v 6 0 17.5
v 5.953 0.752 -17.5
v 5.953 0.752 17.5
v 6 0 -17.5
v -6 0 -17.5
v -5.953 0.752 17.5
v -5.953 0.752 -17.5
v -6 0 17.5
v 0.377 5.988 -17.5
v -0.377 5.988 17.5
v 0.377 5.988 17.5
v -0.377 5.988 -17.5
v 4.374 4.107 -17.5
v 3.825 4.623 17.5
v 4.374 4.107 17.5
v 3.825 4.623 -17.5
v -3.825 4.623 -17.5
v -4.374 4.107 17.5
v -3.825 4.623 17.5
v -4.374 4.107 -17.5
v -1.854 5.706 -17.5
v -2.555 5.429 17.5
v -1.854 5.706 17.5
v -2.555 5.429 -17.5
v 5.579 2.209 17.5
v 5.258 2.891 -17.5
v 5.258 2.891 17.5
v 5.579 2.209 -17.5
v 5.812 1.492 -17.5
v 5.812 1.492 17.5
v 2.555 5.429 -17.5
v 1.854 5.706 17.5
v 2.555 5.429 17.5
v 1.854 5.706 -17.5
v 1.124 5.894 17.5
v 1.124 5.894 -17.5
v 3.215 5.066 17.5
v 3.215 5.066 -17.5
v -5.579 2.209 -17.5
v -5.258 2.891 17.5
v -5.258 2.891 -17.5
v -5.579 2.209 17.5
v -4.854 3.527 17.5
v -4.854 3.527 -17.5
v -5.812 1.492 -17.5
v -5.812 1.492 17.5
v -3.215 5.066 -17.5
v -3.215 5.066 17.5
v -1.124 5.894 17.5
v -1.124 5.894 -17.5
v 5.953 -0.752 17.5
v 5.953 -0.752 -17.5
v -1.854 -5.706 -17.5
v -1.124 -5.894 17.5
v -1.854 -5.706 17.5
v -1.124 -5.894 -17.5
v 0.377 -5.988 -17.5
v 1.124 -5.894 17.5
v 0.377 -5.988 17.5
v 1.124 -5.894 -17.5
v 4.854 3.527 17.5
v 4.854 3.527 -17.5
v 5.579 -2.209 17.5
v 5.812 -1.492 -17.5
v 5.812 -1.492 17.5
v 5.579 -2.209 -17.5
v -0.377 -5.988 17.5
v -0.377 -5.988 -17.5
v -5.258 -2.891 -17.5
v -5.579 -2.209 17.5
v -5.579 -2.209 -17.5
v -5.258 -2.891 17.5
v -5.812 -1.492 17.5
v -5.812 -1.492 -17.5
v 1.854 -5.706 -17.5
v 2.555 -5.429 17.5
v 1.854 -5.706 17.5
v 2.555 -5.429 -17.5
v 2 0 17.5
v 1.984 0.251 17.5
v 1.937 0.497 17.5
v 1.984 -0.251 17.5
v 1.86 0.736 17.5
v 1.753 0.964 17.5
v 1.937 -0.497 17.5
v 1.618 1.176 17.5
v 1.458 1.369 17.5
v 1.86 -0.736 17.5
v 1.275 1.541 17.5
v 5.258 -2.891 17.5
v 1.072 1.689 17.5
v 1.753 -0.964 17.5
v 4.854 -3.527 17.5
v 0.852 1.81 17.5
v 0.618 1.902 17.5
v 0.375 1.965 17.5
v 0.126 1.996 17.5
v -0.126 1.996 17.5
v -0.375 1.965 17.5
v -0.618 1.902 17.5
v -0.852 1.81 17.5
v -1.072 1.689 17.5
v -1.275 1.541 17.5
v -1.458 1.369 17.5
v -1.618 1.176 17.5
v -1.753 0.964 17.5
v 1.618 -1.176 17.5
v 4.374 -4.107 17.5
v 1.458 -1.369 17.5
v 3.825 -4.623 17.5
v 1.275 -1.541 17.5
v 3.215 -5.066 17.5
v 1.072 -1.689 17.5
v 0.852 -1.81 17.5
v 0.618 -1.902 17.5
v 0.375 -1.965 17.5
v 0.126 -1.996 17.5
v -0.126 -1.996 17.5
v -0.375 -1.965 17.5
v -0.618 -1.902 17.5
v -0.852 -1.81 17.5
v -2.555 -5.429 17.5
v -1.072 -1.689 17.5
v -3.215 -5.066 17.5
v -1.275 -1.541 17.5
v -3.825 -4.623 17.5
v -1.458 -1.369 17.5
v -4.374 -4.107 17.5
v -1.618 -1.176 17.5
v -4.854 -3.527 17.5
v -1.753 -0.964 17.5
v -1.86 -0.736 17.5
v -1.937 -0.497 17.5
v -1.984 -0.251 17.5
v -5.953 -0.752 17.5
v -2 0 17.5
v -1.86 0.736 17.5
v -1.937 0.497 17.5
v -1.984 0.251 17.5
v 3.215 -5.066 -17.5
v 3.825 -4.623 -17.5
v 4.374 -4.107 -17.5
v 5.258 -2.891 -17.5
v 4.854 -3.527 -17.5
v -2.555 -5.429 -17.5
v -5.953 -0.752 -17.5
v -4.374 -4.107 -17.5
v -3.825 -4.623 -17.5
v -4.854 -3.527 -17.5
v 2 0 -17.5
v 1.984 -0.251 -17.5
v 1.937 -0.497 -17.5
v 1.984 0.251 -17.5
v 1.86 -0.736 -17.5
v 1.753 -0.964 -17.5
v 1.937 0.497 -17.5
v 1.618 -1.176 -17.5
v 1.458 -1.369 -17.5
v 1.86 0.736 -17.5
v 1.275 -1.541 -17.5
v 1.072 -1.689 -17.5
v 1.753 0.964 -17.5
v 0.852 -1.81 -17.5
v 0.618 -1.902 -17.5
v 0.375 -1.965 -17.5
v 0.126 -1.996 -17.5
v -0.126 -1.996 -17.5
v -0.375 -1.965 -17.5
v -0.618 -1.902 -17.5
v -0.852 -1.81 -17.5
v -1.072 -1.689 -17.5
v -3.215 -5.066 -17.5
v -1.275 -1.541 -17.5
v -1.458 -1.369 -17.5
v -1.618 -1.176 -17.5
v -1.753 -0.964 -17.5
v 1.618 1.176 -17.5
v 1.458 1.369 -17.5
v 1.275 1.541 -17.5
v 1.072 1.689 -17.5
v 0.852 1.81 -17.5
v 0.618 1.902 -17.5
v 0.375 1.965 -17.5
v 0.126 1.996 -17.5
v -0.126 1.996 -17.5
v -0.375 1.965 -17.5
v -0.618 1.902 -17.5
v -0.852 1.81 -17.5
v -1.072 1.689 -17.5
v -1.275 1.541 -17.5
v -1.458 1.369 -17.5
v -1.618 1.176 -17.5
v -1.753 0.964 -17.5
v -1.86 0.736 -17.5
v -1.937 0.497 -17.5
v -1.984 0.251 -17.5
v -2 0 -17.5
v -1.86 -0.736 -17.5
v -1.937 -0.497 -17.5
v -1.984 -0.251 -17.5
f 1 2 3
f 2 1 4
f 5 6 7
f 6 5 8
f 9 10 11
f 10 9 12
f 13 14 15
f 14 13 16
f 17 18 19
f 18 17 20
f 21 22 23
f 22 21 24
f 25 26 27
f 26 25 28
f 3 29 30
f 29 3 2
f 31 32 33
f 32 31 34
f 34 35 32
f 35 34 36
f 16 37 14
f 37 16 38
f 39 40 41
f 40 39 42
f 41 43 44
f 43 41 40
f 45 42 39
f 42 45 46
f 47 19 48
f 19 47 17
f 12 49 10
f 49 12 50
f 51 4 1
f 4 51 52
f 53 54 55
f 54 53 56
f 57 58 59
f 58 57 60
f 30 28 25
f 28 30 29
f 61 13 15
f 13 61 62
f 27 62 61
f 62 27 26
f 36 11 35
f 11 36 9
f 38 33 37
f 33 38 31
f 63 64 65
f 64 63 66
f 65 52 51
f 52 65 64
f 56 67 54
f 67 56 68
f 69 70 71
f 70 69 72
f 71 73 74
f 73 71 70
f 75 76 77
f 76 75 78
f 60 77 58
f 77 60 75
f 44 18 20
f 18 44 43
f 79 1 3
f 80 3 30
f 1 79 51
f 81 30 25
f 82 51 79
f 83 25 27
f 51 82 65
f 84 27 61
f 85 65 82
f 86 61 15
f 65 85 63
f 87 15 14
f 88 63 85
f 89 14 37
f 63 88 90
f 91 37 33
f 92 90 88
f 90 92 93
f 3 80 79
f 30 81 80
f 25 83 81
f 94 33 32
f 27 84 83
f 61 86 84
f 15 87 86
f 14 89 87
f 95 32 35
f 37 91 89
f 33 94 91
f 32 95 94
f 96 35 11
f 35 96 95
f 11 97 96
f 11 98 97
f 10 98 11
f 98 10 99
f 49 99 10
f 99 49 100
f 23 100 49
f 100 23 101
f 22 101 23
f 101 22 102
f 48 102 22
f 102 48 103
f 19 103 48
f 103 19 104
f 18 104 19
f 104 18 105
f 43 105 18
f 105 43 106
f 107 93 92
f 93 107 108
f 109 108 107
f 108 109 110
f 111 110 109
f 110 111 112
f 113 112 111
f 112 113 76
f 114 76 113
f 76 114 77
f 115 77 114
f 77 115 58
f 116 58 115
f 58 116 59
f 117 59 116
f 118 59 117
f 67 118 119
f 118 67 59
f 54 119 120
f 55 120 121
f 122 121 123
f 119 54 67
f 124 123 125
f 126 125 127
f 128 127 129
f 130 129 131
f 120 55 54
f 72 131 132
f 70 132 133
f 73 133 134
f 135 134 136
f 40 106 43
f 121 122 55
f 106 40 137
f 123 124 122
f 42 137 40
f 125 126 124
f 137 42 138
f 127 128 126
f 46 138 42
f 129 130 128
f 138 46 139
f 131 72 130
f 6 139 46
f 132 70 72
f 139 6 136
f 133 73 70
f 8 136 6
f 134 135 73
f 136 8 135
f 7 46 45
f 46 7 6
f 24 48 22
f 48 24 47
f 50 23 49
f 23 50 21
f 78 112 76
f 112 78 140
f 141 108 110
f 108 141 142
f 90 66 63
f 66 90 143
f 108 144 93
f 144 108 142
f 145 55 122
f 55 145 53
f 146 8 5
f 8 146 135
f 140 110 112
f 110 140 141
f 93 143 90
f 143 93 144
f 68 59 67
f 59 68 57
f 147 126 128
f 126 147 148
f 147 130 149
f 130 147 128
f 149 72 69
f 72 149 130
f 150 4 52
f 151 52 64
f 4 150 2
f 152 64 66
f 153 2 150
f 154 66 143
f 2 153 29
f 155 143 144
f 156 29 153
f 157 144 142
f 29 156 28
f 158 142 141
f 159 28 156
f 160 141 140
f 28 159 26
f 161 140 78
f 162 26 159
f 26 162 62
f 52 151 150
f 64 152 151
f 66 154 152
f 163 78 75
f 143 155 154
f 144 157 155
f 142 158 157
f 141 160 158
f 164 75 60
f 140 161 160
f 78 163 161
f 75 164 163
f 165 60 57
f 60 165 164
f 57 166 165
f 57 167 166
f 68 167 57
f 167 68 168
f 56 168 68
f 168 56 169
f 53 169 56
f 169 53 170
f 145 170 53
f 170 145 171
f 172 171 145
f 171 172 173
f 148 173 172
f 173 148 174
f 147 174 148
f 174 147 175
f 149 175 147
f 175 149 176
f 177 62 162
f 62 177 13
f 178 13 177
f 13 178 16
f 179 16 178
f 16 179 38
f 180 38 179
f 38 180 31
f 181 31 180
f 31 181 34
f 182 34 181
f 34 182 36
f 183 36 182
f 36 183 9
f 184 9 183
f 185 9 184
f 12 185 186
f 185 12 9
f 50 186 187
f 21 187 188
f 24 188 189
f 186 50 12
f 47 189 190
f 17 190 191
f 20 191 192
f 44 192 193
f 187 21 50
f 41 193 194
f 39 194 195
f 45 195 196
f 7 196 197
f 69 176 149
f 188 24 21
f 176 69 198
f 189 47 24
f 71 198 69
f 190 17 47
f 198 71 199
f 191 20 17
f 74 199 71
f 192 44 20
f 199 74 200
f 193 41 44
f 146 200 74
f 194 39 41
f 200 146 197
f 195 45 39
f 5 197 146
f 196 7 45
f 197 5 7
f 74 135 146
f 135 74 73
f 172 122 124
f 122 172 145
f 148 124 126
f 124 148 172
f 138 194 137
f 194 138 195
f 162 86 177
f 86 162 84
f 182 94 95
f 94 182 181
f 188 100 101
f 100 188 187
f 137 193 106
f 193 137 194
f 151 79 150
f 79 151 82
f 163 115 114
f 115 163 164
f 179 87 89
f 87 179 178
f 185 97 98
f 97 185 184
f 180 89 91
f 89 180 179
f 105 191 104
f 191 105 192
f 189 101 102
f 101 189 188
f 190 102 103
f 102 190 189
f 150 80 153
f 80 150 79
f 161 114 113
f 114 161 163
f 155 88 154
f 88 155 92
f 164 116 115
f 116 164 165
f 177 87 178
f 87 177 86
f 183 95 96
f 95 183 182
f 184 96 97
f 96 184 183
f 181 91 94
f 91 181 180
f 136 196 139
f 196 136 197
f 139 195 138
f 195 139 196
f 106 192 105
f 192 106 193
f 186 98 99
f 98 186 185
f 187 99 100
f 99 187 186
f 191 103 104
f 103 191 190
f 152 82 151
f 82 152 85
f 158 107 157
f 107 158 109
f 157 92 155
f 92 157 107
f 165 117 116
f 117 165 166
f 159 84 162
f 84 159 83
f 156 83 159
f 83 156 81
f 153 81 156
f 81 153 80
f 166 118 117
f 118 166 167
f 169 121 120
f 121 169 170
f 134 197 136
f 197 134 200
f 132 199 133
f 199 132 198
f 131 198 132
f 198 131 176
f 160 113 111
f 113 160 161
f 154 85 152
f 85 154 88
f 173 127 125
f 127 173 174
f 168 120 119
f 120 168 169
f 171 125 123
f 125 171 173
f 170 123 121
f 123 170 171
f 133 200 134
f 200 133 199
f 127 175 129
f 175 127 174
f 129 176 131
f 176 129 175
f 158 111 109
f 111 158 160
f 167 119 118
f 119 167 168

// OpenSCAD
$fn = 50;


difference() {
	union() {
		translate(v = [0, 0, -17.5000000000]) {
			cylinder(h = 35, r = 6.0000000000);
		}
	}
	union() {
		translate(v = [0, 0, -100.0000000000]) {
			cylinder(h = 200, r = 2.0000000000);
		}
	}
}
